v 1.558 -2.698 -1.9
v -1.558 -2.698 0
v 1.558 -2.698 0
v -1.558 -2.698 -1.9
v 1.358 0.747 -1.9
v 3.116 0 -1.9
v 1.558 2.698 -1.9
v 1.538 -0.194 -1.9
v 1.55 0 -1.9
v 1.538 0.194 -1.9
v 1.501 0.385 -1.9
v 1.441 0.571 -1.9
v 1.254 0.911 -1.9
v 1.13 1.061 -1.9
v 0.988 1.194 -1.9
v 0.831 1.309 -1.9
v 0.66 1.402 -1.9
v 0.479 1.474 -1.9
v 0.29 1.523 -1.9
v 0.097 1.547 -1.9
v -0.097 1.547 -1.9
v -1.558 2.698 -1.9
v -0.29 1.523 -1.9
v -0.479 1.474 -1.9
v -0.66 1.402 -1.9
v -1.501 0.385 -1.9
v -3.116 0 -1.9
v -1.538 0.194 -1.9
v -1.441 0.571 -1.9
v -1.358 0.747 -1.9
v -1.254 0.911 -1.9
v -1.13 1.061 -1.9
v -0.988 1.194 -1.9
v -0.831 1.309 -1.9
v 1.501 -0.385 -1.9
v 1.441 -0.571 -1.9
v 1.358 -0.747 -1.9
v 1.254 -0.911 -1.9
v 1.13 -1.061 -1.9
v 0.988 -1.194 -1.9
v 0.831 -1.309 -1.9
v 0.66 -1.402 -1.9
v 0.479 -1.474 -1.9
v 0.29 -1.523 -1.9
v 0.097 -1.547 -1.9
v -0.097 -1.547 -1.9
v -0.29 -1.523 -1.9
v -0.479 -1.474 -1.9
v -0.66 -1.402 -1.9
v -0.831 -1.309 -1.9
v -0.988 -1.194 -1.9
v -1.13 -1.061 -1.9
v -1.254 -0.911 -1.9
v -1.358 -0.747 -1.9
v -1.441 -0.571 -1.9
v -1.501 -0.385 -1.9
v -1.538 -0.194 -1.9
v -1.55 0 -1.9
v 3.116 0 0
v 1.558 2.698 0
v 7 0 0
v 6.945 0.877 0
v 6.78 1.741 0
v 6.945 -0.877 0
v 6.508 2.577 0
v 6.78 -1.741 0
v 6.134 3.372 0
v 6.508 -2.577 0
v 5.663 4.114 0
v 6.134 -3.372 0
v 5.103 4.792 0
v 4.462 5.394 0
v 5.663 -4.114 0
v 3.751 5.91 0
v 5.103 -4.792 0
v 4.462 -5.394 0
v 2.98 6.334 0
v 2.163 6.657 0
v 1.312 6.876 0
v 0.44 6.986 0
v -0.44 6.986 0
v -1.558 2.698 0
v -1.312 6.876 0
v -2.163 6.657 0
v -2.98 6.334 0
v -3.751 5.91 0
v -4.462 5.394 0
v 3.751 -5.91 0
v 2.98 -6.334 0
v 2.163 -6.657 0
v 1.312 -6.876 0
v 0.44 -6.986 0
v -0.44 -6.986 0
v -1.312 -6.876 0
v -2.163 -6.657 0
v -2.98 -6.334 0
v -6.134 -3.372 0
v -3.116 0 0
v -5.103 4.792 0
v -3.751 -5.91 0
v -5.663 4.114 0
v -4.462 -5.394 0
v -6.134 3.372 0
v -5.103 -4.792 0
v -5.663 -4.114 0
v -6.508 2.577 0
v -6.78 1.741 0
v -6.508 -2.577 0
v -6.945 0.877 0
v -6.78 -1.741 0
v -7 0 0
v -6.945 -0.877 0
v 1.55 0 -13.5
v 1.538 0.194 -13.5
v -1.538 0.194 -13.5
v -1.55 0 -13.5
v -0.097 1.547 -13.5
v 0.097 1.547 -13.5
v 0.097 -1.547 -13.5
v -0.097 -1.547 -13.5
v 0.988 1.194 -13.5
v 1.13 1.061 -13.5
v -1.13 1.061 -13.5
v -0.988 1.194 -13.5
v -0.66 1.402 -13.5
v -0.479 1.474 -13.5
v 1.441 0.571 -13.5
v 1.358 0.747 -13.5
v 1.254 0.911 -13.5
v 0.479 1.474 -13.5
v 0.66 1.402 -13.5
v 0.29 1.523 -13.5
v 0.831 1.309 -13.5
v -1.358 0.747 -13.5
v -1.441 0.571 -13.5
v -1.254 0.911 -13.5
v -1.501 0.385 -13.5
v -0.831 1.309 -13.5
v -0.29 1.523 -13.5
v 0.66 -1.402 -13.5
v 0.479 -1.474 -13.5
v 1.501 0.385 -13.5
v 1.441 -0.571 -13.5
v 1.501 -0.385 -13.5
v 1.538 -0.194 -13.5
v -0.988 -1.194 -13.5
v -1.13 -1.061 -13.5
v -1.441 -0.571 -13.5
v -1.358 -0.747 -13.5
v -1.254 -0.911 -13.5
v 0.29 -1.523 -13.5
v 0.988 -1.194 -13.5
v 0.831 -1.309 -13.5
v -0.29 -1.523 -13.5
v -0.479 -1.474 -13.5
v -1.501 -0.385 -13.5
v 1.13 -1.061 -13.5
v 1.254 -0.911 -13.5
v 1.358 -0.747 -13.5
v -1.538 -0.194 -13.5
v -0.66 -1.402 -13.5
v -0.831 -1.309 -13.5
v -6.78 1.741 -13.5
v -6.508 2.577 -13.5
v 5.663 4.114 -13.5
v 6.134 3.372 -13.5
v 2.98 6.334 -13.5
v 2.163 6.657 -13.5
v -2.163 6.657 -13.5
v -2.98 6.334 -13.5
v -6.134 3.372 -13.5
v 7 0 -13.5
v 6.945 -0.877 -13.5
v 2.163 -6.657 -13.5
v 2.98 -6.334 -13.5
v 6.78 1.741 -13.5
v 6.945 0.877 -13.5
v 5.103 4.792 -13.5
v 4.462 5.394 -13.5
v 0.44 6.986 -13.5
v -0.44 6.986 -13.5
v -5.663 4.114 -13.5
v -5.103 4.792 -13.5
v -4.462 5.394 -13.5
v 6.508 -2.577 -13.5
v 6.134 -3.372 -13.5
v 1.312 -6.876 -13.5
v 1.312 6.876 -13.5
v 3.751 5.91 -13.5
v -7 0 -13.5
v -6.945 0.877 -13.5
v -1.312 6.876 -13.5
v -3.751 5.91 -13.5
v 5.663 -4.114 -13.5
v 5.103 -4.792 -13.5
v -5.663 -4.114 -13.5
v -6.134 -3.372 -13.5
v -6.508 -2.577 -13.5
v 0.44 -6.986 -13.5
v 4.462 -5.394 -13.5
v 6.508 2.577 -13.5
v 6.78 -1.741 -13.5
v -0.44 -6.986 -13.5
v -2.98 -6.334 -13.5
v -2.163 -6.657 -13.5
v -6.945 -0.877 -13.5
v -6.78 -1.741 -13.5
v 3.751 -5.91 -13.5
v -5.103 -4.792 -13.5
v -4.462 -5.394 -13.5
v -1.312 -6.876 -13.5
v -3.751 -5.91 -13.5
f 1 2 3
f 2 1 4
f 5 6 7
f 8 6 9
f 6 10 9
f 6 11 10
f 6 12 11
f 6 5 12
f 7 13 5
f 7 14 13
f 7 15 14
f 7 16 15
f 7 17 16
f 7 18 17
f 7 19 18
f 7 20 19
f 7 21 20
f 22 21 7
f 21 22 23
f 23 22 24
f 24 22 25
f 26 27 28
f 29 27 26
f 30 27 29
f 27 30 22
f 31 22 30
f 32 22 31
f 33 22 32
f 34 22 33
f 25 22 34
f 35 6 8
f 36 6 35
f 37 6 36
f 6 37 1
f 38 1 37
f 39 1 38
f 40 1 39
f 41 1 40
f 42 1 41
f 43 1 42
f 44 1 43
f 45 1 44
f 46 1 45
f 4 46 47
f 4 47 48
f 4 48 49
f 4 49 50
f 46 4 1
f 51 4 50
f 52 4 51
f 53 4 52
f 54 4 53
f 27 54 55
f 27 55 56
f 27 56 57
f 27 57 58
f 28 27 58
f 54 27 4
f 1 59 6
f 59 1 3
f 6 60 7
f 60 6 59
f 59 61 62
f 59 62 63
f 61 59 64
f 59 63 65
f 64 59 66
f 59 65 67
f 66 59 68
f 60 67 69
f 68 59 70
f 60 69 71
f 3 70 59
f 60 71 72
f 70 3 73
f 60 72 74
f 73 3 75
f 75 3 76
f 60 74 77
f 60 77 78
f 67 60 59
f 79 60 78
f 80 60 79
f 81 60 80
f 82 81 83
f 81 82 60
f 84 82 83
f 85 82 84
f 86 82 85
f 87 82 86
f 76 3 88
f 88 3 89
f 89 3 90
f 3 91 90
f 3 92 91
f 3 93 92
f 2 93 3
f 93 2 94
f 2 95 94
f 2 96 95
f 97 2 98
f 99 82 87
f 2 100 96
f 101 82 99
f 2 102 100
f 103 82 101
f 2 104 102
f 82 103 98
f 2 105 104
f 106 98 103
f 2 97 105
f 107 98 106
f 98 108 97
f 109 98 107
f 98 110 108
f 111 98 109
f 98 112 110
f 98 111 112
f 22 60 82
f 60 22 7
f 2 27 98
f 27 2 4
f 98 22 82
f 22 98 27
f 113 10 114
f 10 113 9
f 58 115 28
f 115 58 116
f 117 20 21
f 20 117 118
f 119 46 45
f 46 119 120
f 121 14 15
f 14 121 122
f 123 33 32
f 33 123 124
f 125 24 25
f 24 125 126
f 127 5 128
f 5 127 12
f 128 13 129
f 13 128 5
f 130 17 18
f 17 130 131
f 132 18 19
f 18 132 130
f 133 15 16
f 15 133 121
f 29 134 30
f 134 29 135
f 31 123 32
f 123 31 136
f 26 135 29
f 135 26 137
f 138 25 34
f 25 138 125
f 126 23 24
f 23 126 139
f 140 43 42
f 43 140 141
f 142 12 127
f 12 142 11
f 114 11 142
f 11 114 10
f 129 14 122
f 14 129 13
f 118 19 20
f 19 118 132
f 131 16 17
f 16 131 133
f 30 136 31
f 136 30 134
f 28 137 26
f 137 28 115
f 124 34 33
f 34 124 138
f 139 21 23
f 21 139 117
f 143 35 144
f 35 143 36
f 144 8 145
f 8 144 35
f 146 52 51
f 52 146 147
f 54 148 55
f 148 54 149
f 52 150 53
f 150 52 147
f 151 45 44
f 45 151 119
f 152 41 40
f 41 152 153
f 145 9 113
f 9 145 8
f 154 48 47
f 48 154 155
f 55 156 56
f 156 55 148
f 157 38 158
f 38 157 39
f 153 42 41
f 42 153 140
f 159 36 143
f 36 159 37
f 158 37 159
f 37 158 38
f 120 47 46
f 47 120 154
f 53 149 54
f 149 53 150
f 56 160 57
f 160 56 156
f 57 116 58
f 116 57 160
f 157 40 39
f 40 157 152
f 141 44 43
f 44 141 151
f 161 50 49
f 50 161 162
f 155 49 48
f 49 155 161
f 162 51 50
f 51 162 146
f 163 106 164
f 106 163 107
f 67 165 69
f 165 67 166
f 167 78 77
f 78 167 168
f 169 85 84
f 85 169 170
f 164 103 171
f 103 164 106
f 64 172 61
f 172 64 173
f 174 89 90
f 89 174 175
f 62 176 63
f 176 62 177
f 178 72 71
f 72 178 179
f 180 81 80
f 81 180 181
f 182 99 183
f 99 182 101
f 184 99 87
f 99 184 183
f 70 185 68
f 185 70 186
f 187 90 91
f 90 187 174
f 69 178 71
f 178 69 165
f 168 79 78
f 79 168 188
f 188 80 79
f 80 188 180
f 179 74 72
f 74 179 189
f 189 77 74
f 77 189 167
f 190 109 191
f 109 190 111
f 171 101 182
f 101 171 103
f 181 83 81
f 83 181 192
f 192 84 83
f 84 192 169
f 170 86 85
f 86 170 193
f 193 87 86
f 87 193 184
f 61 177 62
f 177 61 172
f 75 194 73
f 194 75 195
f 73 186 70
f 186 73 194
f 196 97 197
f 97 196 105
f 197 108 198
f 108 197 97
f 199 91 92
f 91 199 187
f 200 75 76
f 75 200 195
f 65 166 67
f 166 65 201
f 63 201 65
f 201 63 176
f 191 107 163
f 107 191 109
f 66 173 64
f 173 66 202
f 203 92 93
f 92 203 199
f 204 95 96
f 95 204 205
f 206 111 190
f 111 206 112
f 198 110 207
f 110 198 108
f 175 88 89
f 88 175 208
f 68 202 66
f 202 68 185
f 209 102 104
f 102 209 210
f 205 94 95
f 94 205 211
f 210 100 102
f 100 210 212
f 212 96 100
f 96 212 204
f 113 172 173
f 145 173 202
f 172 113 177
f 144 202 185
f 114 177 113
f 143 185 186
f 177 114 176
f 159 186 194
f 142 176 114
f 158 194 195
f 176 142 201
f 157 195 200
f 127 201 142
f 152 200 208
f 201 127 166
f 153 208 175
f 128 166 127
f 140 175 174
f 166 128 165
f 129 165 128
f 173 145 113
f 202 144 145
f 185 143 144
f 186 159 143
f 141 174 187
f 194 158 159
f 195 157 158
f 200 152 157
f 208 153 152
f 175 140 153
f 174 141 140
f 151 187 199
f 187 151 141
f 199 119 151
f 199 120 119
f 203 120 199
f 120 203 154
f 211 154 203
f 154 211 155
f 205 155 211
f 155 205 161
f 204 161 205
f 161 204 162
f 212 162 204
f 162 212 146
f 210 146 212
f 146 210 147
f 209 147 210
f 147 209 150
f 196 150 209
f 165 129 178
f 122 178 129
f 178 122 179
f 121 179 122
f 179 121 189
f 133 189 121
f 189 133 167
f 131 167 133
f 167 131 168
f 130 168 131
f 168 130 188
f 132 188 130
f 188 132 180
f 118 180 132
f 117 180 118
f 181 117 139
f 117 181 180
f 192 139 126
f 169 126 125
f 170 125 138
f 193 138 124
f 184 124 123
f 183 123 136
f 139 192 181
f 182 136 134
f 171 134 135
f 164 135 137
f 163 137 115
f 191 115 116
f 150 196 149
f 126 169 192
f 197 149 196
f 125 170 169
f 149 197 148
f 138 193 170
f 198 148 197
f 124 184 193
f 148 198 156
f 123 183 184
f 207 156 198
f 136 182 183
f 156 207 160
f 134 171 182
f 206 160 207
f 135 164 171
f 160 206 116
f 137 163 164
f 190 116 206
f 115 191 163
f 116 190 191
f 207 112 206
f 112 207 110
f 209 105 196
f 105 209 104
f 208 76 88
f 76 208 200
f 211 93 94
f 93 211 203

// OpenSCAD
$fn = 50;


difference() {
	union() {
		translate(v = [0, 0, -13.5000000000]) {
			cylinder(h = 13.5000000000, r = 7.0000000000);
		}
	}
	union() {
		translate(v = [0, 0, 0]) {
			rotate(a = [0, 0, 0]) {
				difference() {
					union() {
						translate(v = [0, 0, -1.9000000000]) {
							linear_extrude(height = 1.9000000000) {
								polygon(points = [[3.1158000000, 0.0000000000], [1.5579000000, 2.6983619531], [-1.5579000000, 2.6983619531], [-3.1158000000, 0.0000000000], [-1.5579000000, -2.6983619531], [1.5579000000, -2.6983619531]]);
							}
						}
					}
					union();
				}
			}
		}
		#translate(v = [0, 0, -100.0000000000]) {
			cylinder(h = 200, r = 1.5500000000);
		}
	}
}
